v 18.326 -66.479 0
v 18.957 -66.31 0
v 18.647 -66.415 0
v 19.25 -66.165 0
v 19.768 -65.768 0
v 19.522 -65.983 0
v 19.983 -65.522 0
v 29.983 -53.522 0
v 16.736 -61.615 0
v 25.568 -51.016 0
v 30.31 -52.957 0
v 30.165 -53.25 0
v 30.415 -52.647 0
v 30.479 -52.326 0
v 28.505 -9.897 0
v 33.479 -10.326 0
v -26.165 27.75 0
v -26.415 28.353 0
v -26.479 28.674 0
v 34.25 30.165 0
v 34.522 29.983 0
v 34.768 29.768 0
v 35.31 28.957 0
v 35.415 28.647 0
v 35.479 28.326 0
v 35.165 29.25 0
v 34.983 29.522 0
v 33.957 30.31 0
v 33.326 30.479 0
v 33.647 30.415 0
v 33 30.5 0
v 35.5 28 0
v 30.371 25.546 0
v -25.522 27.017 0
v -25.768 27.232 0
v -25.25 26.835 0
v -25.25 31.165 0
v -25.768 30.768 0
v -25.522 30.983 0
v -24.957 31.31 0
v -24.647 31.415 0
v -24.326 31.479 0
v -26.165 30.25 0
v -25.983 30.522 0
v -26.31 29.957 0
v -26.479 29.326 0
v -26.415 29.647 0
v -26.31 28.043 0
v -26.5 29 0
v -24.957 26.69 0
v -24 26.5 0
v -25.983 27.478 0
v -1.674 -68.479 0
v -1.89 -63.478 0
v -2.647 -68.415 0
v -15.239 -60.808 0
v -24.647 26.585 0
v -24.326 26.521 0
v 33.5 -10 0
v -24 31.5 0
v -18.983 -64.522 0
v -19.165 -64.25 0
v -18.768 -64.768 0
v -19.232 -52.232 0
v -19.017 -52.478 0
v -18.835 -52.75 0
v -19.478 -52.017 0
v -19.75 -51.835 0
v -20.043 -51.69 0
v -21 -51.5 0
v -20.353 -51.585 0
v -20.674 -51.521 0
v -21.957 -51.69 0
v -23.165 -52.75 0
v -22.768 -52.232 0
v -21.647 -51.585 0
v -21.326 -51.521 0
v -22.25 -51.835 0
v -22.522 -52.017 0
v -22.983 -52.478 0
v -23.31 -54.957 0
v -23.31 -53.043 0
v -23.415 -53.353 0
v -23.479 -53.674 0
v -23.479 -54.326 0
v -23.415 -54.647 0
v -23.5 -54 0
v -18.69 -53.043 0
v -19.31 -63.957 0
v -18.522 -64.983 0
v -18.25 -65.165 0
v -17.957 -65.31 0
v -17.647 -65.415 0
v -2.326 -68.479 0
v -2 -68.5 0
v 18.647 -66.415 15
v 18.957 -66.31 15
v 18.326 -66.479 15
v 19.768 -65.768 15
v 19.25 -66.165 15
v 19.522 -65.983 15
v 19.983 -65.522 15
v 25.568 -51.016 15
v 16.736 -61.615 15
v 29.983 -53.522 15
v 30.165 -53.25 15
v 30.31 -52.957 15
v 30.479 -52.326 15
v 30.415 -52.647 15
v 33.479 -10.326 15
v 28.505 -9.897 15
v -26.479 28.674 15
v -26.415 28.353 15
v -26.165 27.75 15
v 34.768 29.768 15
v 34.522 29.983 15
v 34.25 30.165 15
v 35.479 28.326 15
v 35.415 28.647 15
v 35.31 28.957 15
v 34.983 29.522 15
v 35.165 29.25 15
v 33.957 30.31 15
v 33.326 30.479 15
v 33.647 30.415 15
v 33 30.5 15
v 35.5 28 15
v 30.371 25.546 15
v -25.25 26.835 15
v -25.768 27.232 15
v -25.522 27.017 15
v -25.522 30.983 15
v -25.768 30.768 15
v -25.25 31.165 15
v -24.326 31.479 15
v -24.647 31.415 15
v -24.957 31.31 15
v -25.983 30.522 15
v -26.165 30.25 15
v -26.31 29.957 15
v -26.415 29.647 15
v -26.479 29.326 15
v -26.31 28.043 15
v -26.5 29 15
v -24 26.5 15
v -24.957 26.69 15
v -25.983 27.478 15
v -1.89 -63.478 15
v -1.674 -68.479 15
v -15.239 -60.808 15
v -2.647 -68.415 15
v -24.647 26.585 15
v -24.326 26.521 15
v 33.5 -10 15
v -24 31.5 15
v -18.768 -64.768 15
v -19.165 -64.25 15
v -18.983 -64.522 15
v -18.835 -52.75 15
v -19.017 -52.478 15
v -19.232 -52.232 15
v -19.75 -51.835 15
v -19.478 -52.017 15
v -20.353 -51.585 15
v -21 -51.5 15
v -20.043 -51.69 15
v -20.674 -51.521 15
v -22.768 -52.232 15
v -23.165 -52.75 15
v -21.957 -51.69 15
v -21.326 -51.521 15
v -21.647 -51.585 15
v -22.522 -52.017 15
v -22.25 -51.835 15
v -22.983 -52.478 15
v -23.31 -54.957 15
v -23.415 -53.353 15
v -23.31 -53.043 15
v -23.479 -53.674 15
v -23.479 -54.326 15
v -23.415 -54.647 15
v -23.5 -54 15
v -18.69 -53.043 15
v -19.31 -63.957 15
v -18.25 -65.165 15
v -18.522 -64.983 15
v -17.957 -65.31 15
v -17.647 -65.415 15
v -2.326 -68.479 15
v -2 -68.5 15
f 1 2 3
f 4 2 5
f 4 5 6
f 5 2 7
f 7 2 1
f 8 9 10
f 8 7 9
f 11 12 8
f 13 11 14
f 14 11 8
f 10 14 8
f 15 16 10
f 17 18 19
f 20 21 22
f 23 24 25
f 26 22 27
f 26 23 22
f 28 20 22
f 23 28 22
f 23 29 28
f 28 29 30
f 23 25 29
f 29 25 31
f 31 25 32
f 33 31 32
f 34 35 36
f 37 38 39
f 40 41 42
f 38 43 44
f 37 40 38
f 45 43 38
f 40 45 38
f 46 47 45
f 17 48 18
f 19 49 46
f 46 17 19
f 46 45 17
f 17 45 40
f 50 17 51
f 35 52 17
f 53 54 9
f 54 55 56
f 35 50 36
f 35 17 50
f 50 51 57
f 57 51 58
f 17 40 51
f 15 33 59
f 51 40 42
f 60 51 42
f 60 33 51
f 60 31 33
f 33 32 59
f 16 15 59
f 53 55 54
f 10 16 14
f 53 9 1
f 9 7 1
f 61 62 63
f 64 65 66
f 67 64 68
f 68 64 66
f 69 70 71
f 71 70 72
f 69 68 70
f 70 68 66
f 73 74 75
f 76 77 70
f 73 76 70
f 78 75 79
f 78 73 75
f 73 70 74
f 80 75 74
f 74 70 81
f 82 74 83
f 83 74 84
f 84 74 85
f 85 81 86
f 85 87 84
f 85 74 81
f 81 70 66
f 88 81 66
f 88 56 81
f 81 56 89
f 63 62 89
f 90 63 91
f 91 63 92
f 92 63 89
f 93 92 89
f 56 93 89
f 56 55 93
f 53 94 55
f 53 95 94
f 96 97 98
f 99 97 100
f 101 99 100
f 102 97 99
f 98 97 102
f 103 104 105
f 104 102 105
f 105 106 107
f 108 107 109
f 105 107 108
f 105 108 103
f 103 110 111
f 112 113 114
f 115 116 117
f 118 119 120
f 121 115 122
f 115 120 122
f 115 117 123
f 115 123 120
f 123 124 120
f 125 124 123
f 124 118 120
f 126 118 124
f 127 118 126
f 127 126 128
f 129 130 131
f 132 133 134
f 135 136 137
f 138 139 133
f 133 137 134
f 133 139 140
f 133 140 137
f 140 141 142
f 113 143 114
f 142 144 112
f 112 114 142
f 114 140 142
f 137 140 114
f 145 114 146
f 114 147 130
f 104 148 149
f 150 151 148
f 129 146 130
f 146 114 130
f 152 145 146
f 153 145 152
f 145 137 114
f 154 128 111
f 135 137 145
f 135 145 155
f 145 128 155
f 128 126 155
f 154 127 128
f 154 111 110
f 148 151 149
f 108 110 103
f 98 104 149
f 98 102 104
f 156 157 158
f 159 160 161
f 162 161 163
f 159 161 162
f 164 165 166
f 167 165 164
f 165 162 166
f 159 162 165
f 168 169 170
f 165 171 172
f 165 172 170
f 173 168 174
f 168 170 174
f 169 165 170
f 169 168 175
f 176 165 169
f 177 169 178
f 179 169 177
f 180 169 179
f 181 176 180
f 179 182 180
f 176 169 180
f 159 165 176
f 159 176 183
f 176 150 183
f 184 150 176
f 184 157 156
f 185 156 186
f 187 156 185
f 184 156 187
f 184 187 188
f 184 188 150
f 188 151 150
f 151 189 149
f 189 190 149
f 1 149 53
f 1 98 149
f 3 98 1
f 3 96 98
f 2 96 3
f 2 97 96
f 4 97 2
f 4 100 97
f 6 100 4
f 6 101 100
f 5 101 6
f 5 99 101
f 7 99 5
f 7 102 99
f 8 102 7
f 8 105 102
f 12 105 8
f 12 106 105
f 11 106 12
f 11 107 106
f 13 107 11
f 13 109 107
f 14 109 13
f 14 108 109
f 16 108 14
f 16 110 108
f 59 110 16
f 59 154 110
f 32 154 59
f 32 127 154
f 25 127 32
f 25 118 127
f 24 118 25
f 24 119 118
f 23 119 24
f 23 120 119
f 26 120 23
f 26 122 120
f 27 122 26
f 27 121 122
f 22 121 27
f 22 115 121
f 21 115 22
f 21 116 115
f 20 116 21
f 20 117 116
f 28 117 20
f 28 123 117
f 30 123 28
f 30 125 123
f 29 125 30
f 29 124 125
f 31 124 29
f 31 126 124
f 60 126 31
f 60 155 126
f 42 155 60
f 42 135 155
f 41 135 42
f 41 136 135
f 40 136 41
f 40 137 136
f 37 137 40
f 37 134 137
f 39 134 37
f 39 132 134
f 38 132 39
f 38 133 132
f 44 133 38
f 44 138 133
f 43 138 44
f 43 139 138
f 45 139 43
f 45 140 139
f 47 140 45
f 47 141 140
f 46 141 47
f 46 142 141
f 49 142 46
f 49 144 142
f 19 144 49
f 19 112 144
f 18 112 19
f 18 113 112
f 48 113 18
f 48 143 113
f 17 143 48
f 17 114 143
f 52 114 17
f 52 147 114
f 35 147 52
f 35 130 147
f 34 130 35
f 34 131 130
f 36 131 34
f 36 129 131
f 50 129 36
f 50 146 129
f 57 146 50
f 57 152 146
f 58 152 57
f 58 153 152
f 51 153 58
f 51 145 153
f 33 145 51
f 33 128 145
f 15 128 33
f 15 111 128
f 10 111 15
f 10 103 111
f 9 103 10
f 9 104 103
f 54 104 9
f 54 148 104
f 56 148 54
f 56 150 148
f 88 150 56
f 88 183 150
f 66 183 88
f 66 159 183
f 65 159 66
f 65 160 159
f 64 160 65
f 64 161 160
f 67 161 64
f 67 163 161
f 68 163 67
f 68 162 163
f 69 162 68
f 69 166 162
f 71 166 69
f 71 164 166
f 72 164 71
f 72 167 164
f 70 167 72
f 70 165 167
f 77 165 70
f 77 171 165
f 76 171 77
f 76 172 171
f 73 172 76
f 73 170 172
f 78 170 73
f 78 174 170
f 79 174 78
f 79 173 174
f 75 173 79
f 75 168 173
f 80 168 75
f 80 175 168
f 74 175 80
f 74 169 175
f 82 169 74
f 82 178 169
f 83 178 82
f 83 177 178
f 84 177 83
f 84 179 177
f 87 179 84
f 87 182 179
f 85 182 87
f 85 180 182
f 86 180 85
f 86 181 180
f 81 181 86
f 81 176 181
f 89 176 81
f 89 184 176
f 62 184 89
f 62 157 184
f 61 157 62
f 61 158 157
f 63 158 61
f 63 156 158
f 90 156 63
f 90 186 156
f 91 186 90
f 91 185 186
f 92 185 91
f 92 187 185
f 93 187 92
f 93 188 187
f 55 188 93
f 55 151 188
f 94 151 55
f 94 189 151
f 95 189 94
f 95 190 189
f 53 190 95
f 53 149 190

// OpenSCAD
// pursehanger — over-the-table-edge bag hook, traced from the reference
// bag_hanger.stl (a compact, mostly-straight hook). A flat TONGUE rests on the
// tabletop; it drapes over the front edge and runs down the front; the bottom
// HOOK curls back UNDER the tongue so the bag's weight sits behind the front-edge
// fulcrum and clamps the tongue down (this is what makes it grip).
//
// Side profile in XY, extruded along +Z (width) -> support-free; the load bends
// it in-plane along the layers.

/* [Profile] */
rib_t = 5;        // ribbon thickness
width = 15;       // width across (Z)

/* [Shape] — traced from bag_hanger.stl (~60 x 96 x 15 mm) */
// centerline points (X = toward the front edge / drape side, Y = up)
pts = [
  [-24,  29],     // tongue back tip (rests on table, slight up-tick)
  [ 33,  28],     // front-edge corner (turn down here)
  [ 31, -10],     // drape down the front...
  [ 28, -52],     // ...slightly curved
  [ 18, -64],     // bottom
  [ -2, -66],     // bottom valley (bag handle sits here)
  [-17, -63],     // up into the retaining hook
  [-21, -54],     // hook tip
];

$fn = 48;

module ribbon(p) {
  for (i = [0 : len(p)-2])
    hull() {
      translate(p[i])   circle(d = rib_t);
      translate(p[i+1]) circle(d = rib_t);
    }
}

module pursehanger() { linear_extrude(width) ribbon(pts); }

pursehanger();
